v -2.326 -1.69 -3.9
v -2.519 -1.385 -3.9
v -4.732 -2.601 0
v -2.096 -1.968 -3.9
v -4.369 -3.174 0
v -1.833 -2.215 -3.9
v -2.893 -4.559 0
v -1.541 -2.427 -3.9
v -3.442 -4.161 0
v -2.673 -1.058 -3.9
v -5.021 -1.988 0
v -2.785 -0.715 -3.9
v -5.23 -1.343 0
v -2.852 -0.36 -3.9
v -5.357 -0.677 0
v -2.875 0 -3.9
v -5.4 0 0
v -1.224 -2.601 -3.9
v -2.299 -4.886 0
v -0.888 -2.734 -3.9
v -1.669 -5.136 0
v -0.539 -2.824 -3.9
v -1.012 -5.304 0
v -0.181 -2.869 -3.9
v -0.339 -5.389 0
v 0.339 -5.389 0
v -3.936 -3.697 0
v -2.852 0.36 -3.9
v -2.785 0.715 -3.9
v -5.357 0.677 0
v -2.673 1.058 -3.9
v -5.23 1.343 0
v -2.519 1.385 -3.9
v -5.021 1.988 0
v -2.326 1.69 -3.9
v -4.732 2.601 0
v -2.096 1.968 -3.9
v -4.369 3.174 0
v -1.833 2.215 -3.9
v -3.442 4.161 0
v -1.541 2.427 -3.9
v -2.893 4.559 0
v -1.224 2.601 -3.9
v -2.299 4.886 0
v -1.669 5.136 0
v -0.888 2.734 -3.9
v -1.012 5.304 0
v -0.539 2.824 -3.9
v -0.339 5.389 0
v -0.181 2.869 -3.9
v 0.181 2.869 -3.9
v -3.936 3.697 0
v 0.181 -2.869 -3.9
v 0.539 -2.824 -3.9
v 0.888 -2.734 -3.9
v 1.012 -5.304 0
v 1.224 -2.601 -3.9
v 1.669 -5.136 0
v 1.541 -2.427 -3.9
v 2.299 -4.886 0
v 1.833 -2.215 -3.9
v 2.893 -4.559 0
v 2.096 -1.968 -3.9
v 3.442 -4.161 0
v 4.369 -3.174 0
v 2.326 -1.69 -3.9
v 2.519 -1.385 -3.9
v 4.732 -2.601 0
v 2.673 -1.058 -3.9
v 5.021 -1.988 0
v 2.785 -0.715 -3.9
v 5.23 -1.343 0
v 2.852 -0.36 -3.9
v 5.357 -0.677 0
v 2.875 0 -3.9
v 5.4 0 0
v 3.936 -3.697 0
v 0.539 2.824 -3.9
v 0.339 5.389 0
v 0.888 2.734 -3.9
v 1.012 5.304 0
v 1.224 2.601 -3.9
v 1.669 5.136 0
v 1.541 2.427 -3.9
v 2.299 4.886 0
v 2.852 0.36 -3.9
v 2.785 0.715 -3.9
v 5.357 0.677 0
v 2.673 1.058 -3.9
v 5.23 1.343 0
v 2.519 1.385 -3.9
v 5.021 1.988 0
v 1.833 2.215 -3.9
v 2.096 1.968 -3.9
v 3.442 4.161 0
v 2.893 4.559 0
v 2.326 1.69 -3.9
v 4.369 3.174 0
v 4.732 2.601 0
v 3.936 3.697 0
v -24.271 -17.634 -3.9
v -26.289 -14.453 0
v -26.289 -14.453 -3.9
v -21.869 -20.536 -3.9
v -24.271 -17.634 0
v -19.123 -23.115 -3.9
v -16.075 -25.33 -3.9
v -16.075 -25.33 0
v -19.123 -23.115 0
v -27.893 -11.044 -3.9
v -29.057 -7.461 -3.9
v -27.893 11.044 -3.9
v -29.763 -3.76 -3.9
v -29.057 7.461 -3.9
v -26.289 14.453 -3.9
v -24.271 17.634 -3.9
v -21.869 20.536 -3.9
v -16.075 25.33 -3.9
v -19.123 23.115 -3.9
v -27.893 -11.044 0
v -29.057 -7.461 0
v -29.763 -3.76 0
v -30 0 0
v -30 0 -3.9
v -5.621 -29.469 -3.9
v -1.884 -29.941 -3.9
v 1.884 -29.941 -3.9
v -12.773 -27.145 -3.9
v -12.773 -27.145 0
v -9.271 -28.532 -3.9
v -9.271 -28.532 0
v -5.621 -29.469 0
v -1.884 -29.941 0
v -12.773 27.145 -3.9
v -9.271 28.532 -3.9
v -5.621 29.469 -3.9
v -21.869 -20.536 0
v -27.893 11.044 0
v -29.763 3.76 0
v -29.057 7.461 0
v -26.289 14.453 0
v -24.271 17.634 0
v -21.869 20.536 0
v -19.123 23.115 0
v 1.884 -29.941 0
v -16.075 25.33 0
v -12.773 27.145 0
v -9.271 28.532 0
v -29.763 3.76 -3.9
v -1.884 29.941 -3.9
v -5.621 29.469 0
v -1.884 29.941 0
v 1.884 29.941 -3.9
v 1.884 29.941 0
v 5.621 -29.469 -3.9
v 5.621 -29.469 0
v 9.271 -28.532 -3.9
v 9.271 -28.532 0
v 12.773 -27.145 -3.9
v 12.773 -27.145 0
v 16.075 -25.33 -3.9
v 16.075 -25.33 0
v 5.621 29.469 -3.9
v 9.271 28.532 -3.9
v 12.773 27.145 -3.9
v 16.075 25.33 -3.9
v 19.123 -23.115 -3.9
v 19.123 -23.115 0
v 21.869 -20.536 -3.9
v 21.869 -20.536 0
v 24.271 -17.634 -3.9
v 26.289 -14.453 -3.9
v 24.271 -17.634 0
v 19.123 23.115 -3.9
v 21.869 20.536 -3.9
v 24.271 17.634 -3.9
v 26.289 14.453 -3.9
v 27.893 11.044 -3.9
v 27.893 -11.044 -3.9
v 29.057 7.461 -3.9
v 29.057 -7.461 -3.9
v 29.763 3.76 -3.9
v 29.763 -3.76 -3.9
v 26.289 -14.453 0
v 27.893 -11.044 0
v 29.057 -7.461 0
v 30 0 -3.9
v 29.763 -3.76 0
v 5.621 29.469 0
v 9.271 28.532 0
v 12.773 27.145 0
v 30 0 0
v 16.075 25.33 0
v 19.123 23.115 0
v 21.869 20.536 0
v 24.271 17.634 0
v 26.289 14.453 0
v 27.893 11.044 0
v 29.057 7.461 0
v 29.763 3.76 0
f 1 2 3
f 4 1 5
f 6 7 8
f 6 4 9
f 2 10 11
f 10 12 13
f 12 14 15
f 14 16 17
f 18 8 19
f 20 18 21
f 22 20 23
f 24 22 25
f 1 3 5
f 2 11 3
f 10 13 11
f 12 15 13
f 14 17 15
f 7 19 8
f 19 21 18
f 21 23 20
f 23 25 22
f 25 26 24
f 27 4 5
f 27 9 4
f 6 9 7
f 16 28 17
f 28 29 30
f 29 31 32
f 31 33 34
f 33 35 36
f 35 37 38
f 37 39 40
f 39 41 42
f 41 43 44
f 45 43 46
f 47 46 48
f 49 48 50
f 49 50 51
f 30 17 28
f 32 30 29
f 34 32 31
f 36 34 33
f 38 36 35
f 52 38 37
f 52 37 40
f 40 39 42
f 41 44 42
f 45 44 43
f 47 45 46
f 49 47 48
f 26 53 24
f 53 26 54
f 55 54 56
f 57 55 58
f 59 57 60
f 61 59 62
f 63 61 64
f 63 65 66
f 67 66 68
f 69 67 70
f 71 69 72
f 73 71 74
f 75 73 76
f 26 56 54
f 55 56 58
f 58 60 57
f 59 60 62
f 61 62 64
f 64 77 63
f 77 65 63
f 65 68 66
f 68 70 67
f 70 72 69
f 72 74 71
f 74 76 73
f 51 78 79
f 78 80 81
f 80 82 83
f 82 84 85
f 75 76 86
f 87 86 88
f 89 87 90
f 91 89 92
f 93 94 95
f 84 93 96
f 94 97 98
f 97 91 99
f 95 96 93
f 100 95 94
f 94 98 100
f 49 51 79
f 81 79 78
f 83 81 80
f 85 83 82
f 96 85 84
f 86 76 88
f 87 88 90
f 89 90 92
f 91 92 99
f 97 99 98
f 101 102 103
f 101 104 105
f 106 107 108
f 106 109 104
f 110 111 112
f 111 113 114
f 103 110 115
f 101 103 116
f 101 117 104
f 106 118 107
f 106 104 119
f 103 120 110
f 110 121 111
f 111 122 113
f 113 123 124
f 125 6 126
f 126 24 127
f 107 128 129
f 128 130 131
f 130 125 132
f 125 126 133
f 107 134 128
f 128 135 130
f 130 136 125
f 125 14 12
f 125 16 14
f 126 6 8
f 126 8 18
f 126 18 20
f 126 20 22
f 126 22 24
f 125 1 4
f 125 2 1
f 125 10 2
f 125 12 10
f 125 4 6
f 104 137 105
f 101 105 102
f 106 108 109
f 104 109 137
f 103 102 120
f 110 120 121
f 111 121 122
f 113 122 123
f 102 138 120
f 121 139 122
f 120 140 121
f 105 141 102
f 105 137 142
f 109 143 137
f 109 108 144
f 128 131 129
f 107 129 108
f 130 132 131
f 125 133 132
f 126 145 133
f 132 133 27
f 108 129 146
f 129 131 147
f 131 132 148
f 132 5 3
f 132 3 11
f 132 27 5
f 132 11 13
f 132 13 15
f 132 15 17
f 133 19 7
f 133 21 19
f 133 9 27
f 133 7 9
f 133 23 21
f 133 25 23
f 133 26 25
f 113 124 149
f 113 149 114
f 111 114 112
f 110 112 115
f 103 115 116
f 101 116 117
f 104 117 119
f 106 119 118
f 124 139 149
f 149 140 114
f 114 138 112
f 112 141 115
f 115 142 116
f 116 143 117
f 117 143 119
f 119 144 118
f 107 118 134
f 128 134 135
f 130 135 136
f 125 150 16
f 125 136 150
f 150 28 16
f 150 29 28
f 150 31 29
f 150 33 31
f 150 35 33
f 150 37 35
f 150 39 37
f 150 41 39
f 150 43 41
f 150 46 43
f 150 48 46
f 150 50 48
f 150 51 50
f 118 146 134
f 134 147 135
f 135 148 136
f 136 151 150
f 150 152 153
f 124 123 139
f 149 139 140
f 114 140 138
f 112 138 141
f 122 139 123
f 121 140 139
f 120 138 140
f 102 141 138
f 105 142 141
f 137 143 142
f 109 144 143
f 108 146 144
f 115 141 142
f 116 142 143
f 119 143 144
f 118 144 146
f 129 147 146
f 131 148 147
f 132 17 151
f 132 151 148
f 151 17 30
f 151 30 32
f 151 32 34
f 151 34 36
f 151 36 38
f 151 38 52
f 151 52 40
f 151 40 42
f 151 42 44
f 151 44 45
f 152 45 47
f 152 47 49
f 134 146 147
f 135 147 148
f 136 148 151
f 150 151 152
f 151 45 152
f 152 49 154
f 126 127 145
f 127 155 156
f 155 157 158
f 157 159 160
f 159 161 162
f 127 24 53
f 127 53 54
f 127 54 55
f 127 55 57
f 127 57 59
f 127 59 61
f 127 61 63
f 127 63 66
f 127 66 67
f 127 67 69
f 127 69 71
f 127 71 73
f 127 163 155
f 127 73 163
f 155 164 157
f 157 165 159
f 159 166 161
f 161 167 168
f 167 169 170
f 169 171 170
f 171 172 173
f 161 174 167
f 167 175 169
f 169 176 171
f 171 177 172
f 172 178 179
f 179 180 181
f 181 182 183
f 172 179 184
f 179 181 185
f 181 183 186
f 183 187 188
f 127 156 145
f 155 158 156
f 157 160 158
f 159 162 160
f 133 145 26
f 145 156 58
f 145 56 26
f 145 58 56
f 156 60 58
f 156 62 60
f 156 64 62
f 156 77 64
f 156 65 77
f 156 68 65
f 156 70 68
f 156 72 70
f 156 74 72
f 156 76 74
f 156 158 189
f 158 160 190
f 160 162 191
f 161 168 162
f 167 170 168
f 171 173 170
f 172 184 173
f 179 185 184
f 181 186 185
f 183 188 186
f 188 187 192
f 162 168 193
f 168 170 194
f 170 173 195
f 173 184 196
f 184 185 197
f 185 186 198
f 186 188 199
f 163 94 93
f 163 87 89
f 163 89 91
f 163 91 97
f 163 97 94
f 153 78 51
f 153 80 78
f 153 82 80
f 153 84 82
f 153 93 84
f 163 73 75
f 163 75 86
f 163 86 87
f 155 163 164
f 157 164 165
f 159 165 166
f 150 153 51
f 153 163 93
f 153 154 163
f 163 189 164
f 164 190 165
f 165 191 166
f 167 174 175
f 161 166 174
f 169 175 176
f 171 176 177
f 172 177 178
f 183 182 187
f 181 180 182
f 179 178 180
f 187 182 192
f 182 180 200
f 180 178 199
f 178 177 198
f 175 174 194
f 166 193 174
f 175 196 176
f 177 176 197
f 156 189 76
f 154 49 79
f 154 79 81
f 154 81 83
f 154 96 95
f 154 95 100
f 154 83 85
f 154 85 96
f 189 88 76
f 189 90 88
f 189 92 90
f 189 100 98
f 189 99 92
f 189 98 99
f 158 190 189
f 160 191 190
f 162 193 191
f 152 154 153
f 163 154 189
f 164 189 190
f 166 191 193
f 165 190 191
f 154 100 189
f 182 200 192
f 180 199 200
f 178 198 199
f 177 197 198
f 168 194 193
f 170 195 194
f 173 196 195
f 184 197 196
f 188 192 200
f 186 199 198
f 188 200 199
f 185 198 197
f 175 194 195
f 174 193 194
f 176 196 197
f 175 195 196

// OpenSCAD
$fn = 50;


difference() {
	union() {
		translate(v = [0, 0, -3.9000000000]) {
			cylinder(h = 3.9000000000, r = 30.0000000000);
		}
	}
	union() {
		translate(v = [0, 0, 0]) {
			rotate(a = [0, 0, 0]) {
				difference() {
					union() {
						translate(v = [0, 0, -6.9000000000]) {
							cylinder(h = 6.9000000000, r = 2.6000000000);
						}
						translate(v = [0, 0, -3.9000000000]) {
							cylinder(h = 3.9000000000, r1 = 2.8750000000, r2 = 5.4000000000);
						}
						translate(v = [0, 0, -6.9000000000]) {
							cylinder(h = 6.9000000000, r = 2.8750000000);
						}
						translate(v = [0, 0, -6.9000000000]) {
							cylinder(h = 6.9000000000, r = 2.6000000000);
						}
					}
					union();
				}
			}
		}
	}
}
